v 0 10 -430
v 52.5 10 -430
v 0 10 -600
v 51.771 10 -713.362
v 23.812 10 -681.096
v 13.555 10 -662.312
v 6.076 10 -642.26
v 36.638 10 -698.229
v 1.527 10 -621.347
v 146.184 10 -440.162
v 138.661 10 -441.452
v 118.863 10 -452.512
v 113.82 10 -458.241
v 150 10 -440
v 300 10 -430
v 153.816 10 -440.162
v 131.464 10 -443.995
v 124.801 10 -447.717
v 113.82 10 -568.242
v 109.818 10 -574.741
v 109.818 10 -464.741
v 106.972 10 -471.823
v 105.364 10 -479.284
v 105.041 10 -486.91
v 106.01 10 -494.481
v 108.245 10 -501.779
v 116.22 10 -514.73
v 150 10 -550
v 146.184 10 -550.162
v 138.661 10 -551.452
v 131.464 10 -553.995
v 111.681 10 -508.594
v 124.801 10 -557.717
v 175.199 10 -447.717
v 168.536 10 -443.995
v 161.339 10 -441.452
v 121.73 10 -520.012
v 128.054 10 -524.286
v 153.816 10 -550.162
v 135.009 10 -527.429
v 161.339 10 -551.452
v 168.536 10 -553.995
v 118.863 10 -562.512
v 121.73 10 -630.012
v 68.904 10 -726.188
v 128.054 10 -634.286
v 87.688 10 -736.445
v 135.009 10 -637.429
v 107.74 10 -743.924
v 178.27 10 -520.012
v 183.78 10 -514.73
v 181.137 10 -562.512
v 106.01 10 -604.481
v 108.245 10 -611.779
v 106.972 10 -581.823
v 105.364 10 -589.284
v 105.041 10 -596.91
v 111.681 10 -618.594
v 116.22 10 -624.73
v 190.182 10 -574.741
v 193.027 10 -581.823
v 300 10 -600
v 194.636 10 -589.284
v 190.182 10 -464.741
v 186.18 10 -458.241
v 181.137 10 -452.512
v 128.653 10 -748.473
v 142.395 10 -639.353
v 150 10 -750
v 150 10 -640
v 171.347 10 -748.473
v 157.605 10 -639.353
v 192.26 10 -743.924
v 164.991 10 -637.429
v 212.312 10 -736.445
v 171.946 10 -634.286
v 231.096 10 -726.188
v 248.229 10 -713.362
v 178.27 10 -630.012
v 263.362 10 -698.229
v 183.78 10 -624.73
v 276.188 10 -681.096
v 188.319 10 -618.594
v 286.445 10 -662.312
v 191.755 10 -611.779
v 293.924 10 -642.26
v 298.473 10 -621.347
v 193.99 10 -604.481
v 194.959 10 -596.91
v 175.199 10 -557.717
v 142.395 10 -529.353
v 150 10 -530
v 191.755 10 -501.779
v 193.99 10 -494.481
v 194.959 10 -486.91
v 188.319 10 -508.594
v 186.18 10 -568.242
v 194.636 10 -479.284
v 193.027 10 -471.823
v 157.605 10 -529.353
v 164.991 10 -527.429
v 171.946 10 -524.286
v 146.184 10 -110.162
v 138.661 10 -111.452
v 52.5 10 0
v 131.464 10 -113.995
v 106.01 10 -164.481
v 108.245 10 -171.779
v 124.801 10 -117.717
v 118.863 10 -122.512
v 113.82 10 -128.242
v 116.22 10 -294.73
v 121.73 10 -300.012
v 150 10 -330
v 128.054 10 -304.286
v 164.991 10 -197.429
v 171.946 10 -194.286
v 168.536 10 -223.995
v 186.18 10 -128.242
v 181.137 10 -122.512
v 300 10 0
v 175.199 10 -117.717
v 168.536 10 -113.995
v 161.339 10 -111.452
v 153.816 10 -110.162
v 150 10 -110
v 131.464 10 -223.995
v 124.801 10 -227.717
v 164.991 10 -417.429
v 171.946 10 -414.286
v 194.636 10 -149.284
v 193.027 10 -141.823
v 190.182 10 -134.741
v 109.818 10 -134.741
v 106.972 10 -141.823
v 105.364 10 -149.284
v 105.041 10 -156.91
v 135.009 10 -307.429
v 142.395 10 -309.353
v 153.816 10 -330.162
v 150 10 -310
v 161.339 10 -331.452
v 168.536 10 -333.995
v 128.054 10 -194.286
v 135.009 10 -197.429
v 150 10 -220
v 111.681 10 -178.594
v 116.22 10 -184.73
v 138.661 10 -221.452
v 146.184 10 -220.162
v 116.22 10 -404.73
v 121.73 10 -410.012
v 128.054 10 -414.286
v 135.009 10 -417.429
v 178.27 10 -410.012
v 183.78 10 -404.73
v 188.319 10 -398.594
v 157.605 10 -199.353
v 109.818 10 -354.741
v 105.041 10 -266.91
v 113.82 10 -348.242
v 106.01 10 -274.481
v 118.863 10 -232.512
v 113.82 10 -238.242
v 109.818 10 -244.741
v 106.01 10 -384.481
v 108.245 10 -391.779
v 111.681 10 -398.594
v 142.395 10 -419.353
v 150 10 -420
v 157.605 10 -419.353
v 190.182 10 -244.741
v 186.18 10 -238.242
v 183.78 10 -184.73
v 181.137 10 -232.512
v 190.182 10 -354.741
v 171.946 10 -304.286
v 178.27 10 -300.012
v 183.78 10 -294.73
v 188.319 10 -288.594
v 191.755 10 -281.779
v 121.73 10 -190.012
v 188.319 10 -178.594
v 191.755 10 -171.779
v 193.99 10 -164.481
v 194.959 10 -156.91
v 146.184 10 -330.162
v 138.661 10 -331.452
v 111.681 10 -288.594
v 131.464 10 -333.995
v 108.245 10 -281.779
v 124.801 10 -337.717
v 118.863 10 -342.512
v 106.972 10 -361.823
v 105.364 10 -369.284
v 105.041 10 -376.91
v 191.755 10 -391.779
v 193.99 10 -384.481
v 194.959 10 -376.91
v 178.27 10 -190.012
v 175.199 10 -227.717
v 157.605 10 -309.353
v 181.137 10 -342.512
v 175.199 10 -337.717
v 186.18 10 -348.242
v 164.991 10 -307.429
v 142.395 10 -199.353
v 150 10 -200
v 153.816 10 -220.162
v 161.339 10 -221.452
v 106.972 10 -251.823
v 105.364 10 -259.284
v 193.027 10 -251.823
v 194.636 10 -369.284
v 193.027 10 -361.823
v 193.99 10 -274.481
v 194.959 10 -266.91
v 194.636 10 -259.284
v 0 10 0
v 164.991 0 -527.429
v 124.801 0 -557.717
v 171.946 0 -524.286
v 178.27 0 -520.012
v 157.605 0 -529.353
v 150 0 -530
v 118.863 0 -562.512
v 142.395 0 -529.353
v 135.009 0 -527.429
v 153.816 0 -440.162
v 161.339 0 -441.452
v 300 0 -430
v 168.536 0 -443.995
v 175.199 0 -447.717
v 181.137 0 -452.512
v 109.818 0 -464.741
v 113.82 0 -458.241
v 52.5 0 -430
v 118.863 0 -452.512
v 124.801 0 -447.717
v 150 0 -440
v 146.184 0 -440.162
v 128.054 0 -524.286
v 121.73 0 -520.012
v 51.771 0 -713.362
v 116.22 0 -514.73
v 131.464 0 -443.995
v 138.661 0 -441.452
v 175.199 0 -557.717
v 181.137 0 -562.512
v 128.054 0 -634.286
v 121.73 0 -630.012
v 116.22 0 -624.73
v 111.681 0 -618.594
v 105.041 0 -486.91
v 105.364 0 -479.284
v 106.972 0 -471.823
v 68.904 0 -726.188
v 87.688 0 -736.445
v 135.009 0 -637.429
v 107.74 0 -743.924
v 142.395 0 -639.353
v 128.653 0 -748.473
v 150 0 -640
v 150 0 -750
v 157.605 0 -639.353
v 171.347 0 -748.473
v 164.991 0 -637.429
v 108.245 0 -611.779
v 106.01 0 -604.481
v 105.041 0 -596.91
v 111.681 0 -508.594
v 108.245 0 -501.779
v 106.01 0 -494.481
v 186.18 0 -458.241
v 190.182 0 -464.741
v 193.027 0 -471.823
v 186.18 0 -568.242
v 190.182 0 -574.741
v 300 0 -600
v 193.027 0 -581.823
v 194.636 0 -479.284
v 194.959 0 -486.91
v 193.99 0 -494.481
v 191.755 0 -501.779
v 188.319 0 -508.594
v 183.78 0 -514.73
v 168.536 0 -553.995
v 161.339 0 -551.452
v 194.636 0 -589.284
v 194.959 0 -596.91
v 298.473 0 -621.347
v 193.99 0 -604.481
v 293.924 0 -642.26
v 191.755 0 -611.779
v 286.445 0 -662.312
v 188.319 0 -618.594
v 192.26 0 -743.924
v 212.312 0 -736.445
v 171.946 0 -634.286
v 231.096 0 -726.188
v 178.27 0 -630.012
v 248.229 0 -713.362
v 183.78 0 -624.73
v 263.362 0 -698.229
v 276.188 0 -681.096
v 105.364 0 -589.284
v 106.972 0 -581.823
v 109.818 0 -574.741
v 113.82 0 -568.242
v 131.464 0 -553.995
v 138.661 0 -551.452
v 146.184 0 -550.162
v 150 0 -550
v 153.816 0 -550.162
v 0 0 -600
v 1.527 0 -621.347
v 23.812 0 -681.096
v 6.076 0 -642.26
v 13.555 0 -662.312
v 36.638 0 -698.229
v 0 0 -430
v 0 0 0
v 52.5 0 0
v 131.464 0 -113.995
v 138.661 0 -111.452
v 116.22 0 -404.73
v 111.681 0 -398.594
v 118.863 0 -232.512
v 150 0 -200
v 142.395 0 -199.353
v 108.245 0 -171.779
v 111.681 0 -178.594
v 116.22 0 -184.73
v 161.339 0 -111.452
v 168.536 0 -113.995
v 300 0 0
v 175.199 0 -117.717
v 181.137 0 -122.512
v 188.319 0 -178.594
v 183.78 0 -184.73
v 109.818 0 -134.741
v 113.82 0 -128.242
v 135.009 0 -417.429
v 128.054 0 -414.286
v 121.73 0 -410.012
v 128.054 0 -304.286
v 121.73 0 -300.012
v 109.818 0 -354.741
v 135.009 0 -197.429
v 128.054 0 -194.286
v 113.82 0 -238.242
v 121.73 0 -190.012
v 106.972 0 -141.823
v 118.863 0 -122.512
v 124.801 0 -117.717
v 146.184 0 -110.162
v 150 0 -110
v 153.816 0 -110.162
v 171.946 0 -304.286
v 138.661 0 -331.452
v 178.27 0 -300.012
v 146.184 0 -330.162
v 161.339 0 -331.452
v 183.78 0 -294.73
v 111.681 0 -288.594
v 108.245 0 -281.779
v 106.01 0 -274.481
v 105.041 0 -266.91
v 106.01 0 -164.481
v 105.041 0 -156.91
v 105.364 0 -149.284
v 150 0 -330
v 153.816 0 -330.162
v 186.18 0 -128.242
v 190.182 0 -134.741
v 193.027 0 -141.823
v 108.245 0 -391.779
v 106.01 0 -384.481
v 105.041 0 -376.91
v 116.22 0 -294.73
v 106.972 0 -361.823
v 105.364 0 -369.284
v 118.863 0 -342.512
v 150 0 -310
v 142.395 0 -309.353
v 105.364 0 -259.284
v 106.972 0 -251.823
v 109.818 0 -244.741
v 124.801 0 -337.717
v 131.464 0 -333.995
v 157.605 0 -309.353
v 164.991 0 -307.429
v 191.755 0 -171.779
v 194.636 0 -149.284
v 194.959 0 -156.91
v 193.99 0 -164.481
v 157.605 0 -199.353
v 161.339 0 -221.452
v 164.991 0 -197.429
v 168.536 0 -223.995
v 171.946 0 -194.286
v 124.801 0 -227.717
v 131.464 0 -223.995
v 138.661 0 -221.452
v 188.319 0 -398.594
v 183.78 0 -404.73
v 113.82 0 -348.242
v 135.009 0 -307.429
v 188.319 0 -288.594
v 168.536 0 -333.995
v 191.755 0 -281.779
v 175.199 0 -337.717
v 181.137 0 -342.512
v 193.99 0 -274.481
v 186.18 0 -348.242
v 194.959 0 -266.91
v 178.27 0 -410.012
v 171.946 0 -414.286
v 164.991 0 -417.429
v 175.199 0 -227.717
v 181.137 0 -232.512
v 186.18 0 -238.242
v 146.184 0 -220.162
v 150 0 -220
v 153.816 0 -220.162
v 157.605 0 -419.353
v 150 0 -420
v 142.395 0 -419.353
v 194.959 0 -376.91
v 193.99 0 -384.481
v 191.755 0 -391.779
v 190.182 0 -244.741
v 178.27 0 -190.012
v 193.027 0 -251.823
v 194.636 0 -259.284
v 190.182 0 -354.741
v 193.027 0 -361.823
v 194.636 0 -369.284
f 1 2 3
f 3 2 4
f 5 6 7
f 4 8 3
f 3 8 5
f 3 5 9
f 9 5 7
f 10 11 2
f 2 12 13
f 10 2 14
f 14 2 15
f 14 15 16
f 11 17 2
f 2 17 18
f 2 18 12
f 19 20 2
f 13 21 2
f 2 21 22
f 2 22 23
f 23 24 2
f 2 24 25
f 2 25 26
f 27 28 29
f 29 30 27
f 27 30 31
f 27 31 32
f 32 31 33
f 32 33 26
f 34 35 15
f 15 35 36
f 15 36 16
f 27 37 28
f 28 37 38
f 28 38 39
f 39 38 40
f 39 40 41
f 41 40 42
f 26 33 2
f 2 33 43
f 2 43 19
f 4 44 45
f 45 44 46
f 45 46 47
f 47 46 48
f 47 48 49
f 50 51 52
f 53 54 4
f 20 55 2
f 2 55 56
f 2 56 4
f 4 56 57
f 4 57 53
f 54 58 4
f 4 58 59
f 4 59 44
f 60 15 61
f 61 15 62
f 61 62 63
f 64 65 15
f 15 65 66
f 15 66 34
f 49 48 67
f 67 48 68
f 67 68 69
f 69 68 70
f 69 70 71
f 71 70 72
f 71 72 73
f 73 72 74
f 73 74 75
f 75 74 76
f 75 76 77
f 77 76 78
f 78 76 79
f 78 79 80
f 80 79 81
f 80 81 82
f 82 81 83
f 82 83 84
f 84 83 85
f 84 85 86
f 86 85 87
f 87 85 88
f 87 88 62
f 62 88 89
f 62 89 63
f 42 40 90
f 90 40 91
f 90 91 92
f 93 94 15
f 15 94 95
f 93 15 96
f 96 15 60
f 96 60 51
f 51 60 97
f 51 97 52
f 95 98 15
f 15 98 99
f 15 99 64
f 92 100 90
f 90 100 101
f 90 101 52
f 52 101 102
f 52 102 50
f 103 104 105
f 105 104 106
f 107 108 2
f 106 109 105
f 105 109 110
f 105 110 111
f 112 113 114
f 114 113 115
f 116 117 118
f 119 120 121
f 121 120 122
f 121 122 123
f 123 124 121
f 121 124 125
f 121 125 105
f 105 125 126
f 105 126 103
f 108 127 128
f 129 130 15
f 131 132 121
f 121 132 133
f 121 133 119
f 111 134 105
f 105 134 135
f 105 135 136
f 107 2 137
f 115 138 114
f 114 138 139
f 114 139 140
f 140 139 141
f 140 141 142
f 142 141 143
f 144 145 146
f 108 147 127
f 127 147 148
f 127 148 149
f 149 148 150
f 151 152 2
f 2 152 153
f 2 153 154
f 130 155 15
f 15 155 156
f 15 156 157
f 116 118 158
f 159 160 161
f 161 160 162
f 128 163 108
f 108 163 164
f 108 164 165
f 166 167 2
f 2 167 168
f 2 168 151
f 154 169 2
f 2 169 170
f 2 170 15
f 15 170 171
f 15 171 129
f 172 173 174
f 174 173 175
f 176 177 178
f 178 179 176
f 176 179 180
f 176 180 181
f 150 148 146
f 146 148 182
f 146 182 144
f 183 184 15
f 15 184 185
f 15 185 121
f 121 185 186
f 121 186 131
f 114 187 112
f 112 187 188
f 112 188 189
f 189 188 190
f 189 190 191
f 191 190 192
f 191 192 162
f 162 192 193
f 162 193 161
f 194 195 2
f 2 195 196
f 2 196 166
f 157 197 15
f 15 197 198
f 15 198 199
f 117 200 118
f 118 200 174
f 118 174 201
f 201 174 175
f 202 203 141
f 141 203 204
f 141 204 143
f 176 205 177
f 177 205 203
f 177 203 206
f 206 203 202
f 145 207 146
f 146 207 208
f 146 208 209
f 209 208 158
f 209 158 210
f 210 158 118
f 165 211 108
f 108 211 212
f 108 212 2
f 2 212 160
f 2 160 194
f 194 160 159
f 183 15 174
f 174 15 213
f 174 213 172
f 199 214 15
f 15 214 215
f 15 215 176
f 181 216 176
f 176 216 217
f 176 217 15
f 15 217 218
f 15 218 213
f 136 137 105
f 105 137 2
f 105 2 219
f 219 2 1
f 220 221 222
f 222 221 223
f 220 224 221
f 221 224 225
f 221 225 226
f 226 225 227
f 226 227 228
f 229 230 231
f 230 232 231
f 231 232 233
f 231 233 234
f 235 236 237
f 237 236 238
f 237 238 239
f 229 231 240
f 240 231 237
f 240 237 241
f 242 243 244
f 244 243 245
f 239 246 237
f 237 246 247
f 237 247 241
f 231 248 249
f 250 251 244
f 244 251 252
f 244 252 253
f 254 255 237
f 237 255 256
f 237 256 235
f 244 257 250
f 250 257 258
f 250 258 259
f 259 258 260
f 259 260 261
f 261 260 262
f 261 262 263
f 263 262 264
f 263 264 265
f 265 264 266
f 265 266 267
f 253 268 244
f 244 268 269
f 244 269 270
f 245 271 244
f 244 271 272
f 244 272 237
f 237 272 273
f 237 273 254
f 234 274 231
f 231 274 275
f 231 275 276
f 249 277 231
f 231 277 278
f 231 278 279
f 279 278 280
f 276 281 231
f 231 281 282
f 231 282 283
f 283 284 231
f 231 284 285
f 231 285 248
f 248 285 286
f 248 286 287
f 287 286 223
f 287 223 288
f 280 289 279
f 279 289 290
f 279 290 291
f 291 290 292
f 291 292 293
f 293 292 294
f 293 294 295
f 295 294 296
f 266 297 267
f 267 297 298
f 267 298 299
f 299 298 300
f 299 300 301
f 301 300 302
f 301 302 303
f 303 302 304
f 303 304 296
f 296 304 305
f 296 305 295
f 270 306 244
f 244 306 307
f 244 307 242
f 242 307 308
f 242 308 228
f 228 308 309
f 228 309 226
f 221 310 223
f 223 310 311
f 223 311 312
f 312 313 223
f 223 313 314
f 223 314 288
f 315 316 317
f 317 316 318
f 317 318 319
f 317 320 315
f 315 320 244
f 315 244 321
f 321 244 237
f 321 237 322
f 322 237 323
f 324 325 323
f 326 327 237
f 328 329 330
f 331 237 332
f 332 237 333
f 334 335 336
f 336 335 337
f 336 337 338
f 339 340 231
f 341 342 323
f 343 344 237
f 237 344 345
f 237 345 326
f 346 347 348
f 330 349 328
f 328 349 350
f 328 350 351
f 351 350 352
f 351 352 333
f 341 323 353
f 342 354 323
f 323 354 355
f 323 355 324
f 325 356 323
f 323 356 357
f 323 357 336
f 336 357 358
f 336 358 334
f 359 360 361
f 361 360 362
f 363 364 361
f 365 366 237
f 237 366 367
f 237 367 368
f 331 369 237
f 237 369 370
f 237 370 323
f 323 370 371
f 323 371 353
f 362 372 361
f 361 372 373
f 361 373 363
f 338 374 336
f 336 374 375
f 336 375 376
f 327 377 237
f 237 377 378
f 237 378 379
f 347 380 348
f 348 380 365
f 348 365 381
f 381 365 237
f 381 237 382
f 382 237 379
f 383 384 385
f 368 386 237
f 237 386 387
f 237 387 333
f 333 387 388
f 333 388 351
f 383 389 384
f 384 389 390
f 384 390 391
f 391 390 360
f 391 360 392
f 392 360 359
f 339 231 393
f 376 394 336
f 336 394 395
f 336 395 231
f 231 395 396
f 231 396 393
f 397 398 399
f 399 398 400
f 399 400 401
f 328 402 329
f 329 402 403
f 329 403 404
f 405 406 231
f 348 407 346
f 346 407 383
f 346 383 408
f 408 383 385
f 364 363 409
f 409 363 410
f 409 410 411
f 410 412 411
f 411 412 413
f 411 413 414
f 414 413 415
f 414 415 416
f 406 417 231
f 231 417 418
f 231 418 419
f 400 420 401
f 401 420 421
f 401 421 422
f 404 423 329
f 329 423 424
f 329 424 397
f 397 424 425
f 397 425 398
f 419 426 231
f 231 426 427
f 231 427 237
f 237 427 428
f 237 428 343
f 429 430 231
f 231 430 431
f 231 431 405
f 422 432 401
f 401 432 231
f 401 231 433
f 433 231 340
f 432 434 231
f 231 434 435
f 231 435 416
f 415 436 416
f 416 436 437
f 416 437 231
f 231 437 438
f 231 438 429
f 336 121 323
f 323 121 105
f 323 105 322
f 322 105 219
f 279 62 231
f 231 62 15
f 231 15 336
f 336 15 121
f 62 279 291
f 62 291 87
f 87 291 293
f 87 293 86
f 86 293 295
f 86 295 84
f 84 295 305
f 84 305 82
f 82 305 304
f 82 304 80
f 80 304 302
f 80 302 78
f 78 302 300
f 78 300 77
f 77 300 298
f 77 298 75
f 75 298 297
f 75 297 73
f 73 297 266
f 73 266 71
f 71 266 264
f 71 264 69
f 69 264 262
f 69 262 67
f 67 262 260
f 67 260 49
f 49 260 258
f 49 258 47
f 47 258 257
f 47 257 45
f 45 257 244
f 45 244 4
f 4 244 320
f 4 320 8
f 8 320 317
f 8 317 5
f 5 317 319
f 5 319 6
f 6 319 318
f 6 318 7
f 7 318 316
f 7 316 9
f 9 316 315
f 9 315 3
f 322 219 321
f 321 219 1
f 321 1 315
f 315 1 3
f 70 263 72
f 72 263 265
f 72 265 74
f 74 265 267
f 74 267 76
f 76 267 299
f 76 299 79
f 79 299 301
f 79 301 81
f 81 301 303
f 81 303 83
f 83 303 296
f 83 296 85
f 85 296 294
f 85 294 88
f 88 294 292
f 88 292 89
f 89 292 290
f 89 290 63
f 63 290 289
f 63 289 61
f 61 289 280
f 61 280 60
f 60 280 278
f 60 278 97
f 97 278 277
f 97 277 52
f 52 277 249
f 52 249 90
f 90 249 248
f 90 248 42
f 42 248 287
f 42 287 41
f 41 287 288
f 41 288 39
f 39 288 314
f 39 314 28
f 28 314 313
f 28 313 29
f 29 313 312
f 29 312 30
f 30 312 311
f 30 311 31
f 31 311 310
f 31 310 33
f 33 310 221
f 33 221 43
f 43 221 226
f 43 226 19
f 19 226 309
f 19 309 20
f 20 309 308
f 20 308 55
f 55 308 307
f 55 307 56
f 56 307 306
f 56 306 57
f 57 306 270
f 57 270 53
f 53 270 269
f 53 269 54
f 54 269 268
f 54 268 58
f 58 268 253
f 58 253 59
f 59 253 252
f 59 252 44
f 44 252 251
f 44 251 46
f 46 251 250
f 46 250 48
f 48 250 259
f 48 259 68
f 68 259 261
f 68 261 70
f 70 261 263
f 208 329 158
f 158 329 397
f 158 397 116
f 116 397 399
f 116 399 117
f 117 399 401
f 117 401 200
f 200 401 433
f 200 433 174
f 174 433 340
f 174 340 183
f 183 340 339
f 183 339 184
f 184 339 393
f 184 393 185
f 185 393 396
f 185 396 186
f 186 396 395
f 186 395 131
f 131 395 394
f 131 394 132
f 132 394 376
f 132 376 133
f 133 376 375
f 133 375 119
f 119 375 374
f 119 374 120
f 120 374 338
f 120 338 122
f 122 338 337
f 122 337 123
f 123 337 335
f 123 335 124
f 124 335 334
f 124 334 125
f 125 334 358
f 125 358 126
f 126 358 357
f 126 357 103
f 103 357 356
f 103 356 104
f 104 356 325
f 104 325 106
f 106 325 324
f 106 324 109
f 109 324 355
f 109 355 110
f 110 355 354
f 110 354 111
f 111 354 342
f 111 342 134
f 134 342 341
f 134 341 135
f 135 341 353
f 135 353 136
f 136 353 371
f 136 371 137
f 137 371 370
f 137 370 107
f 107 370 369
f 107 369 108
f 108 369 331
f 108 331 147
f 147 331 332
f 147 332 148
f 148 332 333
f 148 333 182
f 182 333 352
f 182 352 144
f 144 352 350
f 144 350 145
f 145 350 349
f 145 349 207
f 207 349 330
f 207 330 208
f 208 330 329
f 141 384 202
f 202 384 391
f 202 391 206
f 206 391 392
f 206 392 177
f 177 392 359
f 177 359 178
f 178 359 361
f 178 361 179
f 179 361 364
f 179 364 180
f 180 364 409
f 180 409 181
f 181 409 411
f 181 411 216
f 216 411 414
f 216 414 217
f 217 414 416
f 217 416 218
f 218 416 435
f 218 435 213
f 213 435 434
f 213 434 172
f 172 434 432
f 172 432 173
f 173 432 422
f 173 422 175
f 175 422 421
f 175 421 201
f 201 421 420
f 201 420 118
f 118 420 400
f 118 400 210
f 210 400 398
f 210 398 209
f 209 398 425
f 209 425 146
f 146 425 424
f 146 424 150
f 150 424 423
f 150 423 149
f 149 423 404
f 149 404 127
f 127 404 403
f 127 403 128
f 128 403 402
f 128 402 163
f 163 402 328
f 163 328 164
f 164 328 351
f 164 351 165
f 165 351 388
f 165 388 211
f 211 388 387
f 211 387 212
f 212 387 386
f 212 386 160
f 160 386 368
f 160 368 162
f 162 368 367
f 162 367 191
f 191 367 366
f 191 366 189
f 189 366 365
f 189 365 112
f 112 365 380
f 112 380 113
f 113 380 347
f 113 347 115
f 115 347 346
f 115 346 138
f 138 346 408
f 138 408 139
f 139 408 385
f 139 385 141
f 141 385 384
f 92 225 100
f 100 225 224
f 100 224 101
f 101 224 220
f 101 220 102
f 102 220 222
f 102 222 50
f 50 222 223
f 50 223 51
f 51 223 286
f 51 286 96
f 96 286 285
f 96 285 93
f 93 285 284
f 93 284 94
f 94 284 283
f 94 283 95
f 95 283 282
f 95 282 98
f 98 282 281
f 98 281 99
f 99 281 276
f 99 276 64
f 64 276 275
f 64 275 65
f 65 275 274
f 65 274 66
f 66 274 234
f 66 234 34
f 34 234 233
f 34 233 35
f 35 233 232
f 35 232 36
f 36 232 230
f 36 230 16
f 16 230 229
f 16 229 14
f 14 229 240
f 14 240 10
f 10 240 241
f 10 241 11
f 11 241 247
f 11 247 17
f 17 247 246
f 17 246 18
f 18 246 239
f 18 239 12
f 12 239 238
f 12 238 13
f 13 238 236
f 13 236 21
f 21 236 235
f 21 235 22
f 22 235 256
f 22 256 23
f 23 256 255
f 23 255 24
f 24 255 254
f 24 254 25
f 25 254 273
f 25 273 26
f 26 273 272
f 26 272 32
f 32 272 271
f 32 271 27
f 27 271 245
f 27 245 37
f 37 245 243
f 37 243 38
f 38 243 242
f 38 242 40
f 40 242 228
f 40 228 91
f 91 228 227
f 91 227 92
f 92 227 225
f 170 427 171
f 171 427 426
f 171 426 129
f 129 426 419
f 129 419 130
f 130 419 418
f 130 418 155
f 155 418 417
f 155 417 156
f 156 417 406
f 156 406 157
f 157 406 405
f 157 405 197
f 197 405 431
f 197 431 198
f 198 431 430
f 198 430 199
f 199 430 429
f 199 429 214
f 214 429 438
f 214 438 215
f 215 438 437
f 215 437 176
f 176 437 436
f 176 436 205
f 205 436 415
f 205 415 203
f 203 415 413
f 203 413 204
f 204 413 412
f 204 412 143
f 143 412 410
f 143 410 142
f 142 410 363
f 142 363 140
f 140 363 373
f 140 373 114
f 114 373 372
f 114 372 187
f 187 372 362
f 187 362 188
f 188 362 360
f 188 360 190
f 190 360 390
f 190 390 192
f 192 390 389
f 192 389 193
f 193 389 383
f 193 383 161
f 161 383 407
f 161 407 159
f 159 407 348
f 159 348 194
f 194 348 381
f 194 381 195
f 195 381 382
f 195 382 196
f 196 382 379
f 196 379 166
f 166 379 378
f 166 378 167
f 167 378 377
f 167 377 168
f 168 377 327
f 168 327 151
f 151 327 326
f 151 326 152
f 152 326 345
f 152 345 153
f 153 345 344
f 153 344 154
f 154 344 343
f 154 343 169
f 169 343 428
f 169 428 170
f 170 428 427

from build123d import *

# Parameters (mm, degrees)
ESQUISSE1_R        = 45
BOSS_EXTRU_1_DEPTH = 10


with BuildPart() as part:
    # Esquisse1 → Boss.-Extru.1 (new body)
    with BuildSketch(Plane(origin=(0, 0, 0), x_dir=(1, 0, 0), z_dir=(0, 1, 0))):
        with BuildLine():
            Line((0, 0), (0, 600))
            ThreePointArc((0, 600), (150, 750), (300, 600))
            Line((300, 600), (300, 0))
            Line((300, 0), (0, 0))
        make_face()
        with Locations(Location((150, 155, 0), (0, 0, 270))):
            Circle(ESQUISSE1_R, mode=Mode.SUBTRACT)
        with Locations(Location((150, 265, 0), (0, 0, 270))):
            Circle(ESQUISSE1_R, mode=Mode.SUBTRACT)
        with Locations(Location((150, 375, 0), (0, 0, 270))):
            Circle(ESQUISSE1_R, mode=Mode.SUBTRACT)
        with Locations(Location((150, 485, 0), (0, 0, 270))):
            Circle(ESQUISSE1_R, mode=Mode.SUBTRACT)
        with Locations(Location((150, 595, 0), (0, 0, 270))):
            Circle(ESQUISSE1_R, mode=Mode.SUBTRACT)
    extrude(amount=BOSS_EXTRU_1_DEPTH)


solid = part.part
